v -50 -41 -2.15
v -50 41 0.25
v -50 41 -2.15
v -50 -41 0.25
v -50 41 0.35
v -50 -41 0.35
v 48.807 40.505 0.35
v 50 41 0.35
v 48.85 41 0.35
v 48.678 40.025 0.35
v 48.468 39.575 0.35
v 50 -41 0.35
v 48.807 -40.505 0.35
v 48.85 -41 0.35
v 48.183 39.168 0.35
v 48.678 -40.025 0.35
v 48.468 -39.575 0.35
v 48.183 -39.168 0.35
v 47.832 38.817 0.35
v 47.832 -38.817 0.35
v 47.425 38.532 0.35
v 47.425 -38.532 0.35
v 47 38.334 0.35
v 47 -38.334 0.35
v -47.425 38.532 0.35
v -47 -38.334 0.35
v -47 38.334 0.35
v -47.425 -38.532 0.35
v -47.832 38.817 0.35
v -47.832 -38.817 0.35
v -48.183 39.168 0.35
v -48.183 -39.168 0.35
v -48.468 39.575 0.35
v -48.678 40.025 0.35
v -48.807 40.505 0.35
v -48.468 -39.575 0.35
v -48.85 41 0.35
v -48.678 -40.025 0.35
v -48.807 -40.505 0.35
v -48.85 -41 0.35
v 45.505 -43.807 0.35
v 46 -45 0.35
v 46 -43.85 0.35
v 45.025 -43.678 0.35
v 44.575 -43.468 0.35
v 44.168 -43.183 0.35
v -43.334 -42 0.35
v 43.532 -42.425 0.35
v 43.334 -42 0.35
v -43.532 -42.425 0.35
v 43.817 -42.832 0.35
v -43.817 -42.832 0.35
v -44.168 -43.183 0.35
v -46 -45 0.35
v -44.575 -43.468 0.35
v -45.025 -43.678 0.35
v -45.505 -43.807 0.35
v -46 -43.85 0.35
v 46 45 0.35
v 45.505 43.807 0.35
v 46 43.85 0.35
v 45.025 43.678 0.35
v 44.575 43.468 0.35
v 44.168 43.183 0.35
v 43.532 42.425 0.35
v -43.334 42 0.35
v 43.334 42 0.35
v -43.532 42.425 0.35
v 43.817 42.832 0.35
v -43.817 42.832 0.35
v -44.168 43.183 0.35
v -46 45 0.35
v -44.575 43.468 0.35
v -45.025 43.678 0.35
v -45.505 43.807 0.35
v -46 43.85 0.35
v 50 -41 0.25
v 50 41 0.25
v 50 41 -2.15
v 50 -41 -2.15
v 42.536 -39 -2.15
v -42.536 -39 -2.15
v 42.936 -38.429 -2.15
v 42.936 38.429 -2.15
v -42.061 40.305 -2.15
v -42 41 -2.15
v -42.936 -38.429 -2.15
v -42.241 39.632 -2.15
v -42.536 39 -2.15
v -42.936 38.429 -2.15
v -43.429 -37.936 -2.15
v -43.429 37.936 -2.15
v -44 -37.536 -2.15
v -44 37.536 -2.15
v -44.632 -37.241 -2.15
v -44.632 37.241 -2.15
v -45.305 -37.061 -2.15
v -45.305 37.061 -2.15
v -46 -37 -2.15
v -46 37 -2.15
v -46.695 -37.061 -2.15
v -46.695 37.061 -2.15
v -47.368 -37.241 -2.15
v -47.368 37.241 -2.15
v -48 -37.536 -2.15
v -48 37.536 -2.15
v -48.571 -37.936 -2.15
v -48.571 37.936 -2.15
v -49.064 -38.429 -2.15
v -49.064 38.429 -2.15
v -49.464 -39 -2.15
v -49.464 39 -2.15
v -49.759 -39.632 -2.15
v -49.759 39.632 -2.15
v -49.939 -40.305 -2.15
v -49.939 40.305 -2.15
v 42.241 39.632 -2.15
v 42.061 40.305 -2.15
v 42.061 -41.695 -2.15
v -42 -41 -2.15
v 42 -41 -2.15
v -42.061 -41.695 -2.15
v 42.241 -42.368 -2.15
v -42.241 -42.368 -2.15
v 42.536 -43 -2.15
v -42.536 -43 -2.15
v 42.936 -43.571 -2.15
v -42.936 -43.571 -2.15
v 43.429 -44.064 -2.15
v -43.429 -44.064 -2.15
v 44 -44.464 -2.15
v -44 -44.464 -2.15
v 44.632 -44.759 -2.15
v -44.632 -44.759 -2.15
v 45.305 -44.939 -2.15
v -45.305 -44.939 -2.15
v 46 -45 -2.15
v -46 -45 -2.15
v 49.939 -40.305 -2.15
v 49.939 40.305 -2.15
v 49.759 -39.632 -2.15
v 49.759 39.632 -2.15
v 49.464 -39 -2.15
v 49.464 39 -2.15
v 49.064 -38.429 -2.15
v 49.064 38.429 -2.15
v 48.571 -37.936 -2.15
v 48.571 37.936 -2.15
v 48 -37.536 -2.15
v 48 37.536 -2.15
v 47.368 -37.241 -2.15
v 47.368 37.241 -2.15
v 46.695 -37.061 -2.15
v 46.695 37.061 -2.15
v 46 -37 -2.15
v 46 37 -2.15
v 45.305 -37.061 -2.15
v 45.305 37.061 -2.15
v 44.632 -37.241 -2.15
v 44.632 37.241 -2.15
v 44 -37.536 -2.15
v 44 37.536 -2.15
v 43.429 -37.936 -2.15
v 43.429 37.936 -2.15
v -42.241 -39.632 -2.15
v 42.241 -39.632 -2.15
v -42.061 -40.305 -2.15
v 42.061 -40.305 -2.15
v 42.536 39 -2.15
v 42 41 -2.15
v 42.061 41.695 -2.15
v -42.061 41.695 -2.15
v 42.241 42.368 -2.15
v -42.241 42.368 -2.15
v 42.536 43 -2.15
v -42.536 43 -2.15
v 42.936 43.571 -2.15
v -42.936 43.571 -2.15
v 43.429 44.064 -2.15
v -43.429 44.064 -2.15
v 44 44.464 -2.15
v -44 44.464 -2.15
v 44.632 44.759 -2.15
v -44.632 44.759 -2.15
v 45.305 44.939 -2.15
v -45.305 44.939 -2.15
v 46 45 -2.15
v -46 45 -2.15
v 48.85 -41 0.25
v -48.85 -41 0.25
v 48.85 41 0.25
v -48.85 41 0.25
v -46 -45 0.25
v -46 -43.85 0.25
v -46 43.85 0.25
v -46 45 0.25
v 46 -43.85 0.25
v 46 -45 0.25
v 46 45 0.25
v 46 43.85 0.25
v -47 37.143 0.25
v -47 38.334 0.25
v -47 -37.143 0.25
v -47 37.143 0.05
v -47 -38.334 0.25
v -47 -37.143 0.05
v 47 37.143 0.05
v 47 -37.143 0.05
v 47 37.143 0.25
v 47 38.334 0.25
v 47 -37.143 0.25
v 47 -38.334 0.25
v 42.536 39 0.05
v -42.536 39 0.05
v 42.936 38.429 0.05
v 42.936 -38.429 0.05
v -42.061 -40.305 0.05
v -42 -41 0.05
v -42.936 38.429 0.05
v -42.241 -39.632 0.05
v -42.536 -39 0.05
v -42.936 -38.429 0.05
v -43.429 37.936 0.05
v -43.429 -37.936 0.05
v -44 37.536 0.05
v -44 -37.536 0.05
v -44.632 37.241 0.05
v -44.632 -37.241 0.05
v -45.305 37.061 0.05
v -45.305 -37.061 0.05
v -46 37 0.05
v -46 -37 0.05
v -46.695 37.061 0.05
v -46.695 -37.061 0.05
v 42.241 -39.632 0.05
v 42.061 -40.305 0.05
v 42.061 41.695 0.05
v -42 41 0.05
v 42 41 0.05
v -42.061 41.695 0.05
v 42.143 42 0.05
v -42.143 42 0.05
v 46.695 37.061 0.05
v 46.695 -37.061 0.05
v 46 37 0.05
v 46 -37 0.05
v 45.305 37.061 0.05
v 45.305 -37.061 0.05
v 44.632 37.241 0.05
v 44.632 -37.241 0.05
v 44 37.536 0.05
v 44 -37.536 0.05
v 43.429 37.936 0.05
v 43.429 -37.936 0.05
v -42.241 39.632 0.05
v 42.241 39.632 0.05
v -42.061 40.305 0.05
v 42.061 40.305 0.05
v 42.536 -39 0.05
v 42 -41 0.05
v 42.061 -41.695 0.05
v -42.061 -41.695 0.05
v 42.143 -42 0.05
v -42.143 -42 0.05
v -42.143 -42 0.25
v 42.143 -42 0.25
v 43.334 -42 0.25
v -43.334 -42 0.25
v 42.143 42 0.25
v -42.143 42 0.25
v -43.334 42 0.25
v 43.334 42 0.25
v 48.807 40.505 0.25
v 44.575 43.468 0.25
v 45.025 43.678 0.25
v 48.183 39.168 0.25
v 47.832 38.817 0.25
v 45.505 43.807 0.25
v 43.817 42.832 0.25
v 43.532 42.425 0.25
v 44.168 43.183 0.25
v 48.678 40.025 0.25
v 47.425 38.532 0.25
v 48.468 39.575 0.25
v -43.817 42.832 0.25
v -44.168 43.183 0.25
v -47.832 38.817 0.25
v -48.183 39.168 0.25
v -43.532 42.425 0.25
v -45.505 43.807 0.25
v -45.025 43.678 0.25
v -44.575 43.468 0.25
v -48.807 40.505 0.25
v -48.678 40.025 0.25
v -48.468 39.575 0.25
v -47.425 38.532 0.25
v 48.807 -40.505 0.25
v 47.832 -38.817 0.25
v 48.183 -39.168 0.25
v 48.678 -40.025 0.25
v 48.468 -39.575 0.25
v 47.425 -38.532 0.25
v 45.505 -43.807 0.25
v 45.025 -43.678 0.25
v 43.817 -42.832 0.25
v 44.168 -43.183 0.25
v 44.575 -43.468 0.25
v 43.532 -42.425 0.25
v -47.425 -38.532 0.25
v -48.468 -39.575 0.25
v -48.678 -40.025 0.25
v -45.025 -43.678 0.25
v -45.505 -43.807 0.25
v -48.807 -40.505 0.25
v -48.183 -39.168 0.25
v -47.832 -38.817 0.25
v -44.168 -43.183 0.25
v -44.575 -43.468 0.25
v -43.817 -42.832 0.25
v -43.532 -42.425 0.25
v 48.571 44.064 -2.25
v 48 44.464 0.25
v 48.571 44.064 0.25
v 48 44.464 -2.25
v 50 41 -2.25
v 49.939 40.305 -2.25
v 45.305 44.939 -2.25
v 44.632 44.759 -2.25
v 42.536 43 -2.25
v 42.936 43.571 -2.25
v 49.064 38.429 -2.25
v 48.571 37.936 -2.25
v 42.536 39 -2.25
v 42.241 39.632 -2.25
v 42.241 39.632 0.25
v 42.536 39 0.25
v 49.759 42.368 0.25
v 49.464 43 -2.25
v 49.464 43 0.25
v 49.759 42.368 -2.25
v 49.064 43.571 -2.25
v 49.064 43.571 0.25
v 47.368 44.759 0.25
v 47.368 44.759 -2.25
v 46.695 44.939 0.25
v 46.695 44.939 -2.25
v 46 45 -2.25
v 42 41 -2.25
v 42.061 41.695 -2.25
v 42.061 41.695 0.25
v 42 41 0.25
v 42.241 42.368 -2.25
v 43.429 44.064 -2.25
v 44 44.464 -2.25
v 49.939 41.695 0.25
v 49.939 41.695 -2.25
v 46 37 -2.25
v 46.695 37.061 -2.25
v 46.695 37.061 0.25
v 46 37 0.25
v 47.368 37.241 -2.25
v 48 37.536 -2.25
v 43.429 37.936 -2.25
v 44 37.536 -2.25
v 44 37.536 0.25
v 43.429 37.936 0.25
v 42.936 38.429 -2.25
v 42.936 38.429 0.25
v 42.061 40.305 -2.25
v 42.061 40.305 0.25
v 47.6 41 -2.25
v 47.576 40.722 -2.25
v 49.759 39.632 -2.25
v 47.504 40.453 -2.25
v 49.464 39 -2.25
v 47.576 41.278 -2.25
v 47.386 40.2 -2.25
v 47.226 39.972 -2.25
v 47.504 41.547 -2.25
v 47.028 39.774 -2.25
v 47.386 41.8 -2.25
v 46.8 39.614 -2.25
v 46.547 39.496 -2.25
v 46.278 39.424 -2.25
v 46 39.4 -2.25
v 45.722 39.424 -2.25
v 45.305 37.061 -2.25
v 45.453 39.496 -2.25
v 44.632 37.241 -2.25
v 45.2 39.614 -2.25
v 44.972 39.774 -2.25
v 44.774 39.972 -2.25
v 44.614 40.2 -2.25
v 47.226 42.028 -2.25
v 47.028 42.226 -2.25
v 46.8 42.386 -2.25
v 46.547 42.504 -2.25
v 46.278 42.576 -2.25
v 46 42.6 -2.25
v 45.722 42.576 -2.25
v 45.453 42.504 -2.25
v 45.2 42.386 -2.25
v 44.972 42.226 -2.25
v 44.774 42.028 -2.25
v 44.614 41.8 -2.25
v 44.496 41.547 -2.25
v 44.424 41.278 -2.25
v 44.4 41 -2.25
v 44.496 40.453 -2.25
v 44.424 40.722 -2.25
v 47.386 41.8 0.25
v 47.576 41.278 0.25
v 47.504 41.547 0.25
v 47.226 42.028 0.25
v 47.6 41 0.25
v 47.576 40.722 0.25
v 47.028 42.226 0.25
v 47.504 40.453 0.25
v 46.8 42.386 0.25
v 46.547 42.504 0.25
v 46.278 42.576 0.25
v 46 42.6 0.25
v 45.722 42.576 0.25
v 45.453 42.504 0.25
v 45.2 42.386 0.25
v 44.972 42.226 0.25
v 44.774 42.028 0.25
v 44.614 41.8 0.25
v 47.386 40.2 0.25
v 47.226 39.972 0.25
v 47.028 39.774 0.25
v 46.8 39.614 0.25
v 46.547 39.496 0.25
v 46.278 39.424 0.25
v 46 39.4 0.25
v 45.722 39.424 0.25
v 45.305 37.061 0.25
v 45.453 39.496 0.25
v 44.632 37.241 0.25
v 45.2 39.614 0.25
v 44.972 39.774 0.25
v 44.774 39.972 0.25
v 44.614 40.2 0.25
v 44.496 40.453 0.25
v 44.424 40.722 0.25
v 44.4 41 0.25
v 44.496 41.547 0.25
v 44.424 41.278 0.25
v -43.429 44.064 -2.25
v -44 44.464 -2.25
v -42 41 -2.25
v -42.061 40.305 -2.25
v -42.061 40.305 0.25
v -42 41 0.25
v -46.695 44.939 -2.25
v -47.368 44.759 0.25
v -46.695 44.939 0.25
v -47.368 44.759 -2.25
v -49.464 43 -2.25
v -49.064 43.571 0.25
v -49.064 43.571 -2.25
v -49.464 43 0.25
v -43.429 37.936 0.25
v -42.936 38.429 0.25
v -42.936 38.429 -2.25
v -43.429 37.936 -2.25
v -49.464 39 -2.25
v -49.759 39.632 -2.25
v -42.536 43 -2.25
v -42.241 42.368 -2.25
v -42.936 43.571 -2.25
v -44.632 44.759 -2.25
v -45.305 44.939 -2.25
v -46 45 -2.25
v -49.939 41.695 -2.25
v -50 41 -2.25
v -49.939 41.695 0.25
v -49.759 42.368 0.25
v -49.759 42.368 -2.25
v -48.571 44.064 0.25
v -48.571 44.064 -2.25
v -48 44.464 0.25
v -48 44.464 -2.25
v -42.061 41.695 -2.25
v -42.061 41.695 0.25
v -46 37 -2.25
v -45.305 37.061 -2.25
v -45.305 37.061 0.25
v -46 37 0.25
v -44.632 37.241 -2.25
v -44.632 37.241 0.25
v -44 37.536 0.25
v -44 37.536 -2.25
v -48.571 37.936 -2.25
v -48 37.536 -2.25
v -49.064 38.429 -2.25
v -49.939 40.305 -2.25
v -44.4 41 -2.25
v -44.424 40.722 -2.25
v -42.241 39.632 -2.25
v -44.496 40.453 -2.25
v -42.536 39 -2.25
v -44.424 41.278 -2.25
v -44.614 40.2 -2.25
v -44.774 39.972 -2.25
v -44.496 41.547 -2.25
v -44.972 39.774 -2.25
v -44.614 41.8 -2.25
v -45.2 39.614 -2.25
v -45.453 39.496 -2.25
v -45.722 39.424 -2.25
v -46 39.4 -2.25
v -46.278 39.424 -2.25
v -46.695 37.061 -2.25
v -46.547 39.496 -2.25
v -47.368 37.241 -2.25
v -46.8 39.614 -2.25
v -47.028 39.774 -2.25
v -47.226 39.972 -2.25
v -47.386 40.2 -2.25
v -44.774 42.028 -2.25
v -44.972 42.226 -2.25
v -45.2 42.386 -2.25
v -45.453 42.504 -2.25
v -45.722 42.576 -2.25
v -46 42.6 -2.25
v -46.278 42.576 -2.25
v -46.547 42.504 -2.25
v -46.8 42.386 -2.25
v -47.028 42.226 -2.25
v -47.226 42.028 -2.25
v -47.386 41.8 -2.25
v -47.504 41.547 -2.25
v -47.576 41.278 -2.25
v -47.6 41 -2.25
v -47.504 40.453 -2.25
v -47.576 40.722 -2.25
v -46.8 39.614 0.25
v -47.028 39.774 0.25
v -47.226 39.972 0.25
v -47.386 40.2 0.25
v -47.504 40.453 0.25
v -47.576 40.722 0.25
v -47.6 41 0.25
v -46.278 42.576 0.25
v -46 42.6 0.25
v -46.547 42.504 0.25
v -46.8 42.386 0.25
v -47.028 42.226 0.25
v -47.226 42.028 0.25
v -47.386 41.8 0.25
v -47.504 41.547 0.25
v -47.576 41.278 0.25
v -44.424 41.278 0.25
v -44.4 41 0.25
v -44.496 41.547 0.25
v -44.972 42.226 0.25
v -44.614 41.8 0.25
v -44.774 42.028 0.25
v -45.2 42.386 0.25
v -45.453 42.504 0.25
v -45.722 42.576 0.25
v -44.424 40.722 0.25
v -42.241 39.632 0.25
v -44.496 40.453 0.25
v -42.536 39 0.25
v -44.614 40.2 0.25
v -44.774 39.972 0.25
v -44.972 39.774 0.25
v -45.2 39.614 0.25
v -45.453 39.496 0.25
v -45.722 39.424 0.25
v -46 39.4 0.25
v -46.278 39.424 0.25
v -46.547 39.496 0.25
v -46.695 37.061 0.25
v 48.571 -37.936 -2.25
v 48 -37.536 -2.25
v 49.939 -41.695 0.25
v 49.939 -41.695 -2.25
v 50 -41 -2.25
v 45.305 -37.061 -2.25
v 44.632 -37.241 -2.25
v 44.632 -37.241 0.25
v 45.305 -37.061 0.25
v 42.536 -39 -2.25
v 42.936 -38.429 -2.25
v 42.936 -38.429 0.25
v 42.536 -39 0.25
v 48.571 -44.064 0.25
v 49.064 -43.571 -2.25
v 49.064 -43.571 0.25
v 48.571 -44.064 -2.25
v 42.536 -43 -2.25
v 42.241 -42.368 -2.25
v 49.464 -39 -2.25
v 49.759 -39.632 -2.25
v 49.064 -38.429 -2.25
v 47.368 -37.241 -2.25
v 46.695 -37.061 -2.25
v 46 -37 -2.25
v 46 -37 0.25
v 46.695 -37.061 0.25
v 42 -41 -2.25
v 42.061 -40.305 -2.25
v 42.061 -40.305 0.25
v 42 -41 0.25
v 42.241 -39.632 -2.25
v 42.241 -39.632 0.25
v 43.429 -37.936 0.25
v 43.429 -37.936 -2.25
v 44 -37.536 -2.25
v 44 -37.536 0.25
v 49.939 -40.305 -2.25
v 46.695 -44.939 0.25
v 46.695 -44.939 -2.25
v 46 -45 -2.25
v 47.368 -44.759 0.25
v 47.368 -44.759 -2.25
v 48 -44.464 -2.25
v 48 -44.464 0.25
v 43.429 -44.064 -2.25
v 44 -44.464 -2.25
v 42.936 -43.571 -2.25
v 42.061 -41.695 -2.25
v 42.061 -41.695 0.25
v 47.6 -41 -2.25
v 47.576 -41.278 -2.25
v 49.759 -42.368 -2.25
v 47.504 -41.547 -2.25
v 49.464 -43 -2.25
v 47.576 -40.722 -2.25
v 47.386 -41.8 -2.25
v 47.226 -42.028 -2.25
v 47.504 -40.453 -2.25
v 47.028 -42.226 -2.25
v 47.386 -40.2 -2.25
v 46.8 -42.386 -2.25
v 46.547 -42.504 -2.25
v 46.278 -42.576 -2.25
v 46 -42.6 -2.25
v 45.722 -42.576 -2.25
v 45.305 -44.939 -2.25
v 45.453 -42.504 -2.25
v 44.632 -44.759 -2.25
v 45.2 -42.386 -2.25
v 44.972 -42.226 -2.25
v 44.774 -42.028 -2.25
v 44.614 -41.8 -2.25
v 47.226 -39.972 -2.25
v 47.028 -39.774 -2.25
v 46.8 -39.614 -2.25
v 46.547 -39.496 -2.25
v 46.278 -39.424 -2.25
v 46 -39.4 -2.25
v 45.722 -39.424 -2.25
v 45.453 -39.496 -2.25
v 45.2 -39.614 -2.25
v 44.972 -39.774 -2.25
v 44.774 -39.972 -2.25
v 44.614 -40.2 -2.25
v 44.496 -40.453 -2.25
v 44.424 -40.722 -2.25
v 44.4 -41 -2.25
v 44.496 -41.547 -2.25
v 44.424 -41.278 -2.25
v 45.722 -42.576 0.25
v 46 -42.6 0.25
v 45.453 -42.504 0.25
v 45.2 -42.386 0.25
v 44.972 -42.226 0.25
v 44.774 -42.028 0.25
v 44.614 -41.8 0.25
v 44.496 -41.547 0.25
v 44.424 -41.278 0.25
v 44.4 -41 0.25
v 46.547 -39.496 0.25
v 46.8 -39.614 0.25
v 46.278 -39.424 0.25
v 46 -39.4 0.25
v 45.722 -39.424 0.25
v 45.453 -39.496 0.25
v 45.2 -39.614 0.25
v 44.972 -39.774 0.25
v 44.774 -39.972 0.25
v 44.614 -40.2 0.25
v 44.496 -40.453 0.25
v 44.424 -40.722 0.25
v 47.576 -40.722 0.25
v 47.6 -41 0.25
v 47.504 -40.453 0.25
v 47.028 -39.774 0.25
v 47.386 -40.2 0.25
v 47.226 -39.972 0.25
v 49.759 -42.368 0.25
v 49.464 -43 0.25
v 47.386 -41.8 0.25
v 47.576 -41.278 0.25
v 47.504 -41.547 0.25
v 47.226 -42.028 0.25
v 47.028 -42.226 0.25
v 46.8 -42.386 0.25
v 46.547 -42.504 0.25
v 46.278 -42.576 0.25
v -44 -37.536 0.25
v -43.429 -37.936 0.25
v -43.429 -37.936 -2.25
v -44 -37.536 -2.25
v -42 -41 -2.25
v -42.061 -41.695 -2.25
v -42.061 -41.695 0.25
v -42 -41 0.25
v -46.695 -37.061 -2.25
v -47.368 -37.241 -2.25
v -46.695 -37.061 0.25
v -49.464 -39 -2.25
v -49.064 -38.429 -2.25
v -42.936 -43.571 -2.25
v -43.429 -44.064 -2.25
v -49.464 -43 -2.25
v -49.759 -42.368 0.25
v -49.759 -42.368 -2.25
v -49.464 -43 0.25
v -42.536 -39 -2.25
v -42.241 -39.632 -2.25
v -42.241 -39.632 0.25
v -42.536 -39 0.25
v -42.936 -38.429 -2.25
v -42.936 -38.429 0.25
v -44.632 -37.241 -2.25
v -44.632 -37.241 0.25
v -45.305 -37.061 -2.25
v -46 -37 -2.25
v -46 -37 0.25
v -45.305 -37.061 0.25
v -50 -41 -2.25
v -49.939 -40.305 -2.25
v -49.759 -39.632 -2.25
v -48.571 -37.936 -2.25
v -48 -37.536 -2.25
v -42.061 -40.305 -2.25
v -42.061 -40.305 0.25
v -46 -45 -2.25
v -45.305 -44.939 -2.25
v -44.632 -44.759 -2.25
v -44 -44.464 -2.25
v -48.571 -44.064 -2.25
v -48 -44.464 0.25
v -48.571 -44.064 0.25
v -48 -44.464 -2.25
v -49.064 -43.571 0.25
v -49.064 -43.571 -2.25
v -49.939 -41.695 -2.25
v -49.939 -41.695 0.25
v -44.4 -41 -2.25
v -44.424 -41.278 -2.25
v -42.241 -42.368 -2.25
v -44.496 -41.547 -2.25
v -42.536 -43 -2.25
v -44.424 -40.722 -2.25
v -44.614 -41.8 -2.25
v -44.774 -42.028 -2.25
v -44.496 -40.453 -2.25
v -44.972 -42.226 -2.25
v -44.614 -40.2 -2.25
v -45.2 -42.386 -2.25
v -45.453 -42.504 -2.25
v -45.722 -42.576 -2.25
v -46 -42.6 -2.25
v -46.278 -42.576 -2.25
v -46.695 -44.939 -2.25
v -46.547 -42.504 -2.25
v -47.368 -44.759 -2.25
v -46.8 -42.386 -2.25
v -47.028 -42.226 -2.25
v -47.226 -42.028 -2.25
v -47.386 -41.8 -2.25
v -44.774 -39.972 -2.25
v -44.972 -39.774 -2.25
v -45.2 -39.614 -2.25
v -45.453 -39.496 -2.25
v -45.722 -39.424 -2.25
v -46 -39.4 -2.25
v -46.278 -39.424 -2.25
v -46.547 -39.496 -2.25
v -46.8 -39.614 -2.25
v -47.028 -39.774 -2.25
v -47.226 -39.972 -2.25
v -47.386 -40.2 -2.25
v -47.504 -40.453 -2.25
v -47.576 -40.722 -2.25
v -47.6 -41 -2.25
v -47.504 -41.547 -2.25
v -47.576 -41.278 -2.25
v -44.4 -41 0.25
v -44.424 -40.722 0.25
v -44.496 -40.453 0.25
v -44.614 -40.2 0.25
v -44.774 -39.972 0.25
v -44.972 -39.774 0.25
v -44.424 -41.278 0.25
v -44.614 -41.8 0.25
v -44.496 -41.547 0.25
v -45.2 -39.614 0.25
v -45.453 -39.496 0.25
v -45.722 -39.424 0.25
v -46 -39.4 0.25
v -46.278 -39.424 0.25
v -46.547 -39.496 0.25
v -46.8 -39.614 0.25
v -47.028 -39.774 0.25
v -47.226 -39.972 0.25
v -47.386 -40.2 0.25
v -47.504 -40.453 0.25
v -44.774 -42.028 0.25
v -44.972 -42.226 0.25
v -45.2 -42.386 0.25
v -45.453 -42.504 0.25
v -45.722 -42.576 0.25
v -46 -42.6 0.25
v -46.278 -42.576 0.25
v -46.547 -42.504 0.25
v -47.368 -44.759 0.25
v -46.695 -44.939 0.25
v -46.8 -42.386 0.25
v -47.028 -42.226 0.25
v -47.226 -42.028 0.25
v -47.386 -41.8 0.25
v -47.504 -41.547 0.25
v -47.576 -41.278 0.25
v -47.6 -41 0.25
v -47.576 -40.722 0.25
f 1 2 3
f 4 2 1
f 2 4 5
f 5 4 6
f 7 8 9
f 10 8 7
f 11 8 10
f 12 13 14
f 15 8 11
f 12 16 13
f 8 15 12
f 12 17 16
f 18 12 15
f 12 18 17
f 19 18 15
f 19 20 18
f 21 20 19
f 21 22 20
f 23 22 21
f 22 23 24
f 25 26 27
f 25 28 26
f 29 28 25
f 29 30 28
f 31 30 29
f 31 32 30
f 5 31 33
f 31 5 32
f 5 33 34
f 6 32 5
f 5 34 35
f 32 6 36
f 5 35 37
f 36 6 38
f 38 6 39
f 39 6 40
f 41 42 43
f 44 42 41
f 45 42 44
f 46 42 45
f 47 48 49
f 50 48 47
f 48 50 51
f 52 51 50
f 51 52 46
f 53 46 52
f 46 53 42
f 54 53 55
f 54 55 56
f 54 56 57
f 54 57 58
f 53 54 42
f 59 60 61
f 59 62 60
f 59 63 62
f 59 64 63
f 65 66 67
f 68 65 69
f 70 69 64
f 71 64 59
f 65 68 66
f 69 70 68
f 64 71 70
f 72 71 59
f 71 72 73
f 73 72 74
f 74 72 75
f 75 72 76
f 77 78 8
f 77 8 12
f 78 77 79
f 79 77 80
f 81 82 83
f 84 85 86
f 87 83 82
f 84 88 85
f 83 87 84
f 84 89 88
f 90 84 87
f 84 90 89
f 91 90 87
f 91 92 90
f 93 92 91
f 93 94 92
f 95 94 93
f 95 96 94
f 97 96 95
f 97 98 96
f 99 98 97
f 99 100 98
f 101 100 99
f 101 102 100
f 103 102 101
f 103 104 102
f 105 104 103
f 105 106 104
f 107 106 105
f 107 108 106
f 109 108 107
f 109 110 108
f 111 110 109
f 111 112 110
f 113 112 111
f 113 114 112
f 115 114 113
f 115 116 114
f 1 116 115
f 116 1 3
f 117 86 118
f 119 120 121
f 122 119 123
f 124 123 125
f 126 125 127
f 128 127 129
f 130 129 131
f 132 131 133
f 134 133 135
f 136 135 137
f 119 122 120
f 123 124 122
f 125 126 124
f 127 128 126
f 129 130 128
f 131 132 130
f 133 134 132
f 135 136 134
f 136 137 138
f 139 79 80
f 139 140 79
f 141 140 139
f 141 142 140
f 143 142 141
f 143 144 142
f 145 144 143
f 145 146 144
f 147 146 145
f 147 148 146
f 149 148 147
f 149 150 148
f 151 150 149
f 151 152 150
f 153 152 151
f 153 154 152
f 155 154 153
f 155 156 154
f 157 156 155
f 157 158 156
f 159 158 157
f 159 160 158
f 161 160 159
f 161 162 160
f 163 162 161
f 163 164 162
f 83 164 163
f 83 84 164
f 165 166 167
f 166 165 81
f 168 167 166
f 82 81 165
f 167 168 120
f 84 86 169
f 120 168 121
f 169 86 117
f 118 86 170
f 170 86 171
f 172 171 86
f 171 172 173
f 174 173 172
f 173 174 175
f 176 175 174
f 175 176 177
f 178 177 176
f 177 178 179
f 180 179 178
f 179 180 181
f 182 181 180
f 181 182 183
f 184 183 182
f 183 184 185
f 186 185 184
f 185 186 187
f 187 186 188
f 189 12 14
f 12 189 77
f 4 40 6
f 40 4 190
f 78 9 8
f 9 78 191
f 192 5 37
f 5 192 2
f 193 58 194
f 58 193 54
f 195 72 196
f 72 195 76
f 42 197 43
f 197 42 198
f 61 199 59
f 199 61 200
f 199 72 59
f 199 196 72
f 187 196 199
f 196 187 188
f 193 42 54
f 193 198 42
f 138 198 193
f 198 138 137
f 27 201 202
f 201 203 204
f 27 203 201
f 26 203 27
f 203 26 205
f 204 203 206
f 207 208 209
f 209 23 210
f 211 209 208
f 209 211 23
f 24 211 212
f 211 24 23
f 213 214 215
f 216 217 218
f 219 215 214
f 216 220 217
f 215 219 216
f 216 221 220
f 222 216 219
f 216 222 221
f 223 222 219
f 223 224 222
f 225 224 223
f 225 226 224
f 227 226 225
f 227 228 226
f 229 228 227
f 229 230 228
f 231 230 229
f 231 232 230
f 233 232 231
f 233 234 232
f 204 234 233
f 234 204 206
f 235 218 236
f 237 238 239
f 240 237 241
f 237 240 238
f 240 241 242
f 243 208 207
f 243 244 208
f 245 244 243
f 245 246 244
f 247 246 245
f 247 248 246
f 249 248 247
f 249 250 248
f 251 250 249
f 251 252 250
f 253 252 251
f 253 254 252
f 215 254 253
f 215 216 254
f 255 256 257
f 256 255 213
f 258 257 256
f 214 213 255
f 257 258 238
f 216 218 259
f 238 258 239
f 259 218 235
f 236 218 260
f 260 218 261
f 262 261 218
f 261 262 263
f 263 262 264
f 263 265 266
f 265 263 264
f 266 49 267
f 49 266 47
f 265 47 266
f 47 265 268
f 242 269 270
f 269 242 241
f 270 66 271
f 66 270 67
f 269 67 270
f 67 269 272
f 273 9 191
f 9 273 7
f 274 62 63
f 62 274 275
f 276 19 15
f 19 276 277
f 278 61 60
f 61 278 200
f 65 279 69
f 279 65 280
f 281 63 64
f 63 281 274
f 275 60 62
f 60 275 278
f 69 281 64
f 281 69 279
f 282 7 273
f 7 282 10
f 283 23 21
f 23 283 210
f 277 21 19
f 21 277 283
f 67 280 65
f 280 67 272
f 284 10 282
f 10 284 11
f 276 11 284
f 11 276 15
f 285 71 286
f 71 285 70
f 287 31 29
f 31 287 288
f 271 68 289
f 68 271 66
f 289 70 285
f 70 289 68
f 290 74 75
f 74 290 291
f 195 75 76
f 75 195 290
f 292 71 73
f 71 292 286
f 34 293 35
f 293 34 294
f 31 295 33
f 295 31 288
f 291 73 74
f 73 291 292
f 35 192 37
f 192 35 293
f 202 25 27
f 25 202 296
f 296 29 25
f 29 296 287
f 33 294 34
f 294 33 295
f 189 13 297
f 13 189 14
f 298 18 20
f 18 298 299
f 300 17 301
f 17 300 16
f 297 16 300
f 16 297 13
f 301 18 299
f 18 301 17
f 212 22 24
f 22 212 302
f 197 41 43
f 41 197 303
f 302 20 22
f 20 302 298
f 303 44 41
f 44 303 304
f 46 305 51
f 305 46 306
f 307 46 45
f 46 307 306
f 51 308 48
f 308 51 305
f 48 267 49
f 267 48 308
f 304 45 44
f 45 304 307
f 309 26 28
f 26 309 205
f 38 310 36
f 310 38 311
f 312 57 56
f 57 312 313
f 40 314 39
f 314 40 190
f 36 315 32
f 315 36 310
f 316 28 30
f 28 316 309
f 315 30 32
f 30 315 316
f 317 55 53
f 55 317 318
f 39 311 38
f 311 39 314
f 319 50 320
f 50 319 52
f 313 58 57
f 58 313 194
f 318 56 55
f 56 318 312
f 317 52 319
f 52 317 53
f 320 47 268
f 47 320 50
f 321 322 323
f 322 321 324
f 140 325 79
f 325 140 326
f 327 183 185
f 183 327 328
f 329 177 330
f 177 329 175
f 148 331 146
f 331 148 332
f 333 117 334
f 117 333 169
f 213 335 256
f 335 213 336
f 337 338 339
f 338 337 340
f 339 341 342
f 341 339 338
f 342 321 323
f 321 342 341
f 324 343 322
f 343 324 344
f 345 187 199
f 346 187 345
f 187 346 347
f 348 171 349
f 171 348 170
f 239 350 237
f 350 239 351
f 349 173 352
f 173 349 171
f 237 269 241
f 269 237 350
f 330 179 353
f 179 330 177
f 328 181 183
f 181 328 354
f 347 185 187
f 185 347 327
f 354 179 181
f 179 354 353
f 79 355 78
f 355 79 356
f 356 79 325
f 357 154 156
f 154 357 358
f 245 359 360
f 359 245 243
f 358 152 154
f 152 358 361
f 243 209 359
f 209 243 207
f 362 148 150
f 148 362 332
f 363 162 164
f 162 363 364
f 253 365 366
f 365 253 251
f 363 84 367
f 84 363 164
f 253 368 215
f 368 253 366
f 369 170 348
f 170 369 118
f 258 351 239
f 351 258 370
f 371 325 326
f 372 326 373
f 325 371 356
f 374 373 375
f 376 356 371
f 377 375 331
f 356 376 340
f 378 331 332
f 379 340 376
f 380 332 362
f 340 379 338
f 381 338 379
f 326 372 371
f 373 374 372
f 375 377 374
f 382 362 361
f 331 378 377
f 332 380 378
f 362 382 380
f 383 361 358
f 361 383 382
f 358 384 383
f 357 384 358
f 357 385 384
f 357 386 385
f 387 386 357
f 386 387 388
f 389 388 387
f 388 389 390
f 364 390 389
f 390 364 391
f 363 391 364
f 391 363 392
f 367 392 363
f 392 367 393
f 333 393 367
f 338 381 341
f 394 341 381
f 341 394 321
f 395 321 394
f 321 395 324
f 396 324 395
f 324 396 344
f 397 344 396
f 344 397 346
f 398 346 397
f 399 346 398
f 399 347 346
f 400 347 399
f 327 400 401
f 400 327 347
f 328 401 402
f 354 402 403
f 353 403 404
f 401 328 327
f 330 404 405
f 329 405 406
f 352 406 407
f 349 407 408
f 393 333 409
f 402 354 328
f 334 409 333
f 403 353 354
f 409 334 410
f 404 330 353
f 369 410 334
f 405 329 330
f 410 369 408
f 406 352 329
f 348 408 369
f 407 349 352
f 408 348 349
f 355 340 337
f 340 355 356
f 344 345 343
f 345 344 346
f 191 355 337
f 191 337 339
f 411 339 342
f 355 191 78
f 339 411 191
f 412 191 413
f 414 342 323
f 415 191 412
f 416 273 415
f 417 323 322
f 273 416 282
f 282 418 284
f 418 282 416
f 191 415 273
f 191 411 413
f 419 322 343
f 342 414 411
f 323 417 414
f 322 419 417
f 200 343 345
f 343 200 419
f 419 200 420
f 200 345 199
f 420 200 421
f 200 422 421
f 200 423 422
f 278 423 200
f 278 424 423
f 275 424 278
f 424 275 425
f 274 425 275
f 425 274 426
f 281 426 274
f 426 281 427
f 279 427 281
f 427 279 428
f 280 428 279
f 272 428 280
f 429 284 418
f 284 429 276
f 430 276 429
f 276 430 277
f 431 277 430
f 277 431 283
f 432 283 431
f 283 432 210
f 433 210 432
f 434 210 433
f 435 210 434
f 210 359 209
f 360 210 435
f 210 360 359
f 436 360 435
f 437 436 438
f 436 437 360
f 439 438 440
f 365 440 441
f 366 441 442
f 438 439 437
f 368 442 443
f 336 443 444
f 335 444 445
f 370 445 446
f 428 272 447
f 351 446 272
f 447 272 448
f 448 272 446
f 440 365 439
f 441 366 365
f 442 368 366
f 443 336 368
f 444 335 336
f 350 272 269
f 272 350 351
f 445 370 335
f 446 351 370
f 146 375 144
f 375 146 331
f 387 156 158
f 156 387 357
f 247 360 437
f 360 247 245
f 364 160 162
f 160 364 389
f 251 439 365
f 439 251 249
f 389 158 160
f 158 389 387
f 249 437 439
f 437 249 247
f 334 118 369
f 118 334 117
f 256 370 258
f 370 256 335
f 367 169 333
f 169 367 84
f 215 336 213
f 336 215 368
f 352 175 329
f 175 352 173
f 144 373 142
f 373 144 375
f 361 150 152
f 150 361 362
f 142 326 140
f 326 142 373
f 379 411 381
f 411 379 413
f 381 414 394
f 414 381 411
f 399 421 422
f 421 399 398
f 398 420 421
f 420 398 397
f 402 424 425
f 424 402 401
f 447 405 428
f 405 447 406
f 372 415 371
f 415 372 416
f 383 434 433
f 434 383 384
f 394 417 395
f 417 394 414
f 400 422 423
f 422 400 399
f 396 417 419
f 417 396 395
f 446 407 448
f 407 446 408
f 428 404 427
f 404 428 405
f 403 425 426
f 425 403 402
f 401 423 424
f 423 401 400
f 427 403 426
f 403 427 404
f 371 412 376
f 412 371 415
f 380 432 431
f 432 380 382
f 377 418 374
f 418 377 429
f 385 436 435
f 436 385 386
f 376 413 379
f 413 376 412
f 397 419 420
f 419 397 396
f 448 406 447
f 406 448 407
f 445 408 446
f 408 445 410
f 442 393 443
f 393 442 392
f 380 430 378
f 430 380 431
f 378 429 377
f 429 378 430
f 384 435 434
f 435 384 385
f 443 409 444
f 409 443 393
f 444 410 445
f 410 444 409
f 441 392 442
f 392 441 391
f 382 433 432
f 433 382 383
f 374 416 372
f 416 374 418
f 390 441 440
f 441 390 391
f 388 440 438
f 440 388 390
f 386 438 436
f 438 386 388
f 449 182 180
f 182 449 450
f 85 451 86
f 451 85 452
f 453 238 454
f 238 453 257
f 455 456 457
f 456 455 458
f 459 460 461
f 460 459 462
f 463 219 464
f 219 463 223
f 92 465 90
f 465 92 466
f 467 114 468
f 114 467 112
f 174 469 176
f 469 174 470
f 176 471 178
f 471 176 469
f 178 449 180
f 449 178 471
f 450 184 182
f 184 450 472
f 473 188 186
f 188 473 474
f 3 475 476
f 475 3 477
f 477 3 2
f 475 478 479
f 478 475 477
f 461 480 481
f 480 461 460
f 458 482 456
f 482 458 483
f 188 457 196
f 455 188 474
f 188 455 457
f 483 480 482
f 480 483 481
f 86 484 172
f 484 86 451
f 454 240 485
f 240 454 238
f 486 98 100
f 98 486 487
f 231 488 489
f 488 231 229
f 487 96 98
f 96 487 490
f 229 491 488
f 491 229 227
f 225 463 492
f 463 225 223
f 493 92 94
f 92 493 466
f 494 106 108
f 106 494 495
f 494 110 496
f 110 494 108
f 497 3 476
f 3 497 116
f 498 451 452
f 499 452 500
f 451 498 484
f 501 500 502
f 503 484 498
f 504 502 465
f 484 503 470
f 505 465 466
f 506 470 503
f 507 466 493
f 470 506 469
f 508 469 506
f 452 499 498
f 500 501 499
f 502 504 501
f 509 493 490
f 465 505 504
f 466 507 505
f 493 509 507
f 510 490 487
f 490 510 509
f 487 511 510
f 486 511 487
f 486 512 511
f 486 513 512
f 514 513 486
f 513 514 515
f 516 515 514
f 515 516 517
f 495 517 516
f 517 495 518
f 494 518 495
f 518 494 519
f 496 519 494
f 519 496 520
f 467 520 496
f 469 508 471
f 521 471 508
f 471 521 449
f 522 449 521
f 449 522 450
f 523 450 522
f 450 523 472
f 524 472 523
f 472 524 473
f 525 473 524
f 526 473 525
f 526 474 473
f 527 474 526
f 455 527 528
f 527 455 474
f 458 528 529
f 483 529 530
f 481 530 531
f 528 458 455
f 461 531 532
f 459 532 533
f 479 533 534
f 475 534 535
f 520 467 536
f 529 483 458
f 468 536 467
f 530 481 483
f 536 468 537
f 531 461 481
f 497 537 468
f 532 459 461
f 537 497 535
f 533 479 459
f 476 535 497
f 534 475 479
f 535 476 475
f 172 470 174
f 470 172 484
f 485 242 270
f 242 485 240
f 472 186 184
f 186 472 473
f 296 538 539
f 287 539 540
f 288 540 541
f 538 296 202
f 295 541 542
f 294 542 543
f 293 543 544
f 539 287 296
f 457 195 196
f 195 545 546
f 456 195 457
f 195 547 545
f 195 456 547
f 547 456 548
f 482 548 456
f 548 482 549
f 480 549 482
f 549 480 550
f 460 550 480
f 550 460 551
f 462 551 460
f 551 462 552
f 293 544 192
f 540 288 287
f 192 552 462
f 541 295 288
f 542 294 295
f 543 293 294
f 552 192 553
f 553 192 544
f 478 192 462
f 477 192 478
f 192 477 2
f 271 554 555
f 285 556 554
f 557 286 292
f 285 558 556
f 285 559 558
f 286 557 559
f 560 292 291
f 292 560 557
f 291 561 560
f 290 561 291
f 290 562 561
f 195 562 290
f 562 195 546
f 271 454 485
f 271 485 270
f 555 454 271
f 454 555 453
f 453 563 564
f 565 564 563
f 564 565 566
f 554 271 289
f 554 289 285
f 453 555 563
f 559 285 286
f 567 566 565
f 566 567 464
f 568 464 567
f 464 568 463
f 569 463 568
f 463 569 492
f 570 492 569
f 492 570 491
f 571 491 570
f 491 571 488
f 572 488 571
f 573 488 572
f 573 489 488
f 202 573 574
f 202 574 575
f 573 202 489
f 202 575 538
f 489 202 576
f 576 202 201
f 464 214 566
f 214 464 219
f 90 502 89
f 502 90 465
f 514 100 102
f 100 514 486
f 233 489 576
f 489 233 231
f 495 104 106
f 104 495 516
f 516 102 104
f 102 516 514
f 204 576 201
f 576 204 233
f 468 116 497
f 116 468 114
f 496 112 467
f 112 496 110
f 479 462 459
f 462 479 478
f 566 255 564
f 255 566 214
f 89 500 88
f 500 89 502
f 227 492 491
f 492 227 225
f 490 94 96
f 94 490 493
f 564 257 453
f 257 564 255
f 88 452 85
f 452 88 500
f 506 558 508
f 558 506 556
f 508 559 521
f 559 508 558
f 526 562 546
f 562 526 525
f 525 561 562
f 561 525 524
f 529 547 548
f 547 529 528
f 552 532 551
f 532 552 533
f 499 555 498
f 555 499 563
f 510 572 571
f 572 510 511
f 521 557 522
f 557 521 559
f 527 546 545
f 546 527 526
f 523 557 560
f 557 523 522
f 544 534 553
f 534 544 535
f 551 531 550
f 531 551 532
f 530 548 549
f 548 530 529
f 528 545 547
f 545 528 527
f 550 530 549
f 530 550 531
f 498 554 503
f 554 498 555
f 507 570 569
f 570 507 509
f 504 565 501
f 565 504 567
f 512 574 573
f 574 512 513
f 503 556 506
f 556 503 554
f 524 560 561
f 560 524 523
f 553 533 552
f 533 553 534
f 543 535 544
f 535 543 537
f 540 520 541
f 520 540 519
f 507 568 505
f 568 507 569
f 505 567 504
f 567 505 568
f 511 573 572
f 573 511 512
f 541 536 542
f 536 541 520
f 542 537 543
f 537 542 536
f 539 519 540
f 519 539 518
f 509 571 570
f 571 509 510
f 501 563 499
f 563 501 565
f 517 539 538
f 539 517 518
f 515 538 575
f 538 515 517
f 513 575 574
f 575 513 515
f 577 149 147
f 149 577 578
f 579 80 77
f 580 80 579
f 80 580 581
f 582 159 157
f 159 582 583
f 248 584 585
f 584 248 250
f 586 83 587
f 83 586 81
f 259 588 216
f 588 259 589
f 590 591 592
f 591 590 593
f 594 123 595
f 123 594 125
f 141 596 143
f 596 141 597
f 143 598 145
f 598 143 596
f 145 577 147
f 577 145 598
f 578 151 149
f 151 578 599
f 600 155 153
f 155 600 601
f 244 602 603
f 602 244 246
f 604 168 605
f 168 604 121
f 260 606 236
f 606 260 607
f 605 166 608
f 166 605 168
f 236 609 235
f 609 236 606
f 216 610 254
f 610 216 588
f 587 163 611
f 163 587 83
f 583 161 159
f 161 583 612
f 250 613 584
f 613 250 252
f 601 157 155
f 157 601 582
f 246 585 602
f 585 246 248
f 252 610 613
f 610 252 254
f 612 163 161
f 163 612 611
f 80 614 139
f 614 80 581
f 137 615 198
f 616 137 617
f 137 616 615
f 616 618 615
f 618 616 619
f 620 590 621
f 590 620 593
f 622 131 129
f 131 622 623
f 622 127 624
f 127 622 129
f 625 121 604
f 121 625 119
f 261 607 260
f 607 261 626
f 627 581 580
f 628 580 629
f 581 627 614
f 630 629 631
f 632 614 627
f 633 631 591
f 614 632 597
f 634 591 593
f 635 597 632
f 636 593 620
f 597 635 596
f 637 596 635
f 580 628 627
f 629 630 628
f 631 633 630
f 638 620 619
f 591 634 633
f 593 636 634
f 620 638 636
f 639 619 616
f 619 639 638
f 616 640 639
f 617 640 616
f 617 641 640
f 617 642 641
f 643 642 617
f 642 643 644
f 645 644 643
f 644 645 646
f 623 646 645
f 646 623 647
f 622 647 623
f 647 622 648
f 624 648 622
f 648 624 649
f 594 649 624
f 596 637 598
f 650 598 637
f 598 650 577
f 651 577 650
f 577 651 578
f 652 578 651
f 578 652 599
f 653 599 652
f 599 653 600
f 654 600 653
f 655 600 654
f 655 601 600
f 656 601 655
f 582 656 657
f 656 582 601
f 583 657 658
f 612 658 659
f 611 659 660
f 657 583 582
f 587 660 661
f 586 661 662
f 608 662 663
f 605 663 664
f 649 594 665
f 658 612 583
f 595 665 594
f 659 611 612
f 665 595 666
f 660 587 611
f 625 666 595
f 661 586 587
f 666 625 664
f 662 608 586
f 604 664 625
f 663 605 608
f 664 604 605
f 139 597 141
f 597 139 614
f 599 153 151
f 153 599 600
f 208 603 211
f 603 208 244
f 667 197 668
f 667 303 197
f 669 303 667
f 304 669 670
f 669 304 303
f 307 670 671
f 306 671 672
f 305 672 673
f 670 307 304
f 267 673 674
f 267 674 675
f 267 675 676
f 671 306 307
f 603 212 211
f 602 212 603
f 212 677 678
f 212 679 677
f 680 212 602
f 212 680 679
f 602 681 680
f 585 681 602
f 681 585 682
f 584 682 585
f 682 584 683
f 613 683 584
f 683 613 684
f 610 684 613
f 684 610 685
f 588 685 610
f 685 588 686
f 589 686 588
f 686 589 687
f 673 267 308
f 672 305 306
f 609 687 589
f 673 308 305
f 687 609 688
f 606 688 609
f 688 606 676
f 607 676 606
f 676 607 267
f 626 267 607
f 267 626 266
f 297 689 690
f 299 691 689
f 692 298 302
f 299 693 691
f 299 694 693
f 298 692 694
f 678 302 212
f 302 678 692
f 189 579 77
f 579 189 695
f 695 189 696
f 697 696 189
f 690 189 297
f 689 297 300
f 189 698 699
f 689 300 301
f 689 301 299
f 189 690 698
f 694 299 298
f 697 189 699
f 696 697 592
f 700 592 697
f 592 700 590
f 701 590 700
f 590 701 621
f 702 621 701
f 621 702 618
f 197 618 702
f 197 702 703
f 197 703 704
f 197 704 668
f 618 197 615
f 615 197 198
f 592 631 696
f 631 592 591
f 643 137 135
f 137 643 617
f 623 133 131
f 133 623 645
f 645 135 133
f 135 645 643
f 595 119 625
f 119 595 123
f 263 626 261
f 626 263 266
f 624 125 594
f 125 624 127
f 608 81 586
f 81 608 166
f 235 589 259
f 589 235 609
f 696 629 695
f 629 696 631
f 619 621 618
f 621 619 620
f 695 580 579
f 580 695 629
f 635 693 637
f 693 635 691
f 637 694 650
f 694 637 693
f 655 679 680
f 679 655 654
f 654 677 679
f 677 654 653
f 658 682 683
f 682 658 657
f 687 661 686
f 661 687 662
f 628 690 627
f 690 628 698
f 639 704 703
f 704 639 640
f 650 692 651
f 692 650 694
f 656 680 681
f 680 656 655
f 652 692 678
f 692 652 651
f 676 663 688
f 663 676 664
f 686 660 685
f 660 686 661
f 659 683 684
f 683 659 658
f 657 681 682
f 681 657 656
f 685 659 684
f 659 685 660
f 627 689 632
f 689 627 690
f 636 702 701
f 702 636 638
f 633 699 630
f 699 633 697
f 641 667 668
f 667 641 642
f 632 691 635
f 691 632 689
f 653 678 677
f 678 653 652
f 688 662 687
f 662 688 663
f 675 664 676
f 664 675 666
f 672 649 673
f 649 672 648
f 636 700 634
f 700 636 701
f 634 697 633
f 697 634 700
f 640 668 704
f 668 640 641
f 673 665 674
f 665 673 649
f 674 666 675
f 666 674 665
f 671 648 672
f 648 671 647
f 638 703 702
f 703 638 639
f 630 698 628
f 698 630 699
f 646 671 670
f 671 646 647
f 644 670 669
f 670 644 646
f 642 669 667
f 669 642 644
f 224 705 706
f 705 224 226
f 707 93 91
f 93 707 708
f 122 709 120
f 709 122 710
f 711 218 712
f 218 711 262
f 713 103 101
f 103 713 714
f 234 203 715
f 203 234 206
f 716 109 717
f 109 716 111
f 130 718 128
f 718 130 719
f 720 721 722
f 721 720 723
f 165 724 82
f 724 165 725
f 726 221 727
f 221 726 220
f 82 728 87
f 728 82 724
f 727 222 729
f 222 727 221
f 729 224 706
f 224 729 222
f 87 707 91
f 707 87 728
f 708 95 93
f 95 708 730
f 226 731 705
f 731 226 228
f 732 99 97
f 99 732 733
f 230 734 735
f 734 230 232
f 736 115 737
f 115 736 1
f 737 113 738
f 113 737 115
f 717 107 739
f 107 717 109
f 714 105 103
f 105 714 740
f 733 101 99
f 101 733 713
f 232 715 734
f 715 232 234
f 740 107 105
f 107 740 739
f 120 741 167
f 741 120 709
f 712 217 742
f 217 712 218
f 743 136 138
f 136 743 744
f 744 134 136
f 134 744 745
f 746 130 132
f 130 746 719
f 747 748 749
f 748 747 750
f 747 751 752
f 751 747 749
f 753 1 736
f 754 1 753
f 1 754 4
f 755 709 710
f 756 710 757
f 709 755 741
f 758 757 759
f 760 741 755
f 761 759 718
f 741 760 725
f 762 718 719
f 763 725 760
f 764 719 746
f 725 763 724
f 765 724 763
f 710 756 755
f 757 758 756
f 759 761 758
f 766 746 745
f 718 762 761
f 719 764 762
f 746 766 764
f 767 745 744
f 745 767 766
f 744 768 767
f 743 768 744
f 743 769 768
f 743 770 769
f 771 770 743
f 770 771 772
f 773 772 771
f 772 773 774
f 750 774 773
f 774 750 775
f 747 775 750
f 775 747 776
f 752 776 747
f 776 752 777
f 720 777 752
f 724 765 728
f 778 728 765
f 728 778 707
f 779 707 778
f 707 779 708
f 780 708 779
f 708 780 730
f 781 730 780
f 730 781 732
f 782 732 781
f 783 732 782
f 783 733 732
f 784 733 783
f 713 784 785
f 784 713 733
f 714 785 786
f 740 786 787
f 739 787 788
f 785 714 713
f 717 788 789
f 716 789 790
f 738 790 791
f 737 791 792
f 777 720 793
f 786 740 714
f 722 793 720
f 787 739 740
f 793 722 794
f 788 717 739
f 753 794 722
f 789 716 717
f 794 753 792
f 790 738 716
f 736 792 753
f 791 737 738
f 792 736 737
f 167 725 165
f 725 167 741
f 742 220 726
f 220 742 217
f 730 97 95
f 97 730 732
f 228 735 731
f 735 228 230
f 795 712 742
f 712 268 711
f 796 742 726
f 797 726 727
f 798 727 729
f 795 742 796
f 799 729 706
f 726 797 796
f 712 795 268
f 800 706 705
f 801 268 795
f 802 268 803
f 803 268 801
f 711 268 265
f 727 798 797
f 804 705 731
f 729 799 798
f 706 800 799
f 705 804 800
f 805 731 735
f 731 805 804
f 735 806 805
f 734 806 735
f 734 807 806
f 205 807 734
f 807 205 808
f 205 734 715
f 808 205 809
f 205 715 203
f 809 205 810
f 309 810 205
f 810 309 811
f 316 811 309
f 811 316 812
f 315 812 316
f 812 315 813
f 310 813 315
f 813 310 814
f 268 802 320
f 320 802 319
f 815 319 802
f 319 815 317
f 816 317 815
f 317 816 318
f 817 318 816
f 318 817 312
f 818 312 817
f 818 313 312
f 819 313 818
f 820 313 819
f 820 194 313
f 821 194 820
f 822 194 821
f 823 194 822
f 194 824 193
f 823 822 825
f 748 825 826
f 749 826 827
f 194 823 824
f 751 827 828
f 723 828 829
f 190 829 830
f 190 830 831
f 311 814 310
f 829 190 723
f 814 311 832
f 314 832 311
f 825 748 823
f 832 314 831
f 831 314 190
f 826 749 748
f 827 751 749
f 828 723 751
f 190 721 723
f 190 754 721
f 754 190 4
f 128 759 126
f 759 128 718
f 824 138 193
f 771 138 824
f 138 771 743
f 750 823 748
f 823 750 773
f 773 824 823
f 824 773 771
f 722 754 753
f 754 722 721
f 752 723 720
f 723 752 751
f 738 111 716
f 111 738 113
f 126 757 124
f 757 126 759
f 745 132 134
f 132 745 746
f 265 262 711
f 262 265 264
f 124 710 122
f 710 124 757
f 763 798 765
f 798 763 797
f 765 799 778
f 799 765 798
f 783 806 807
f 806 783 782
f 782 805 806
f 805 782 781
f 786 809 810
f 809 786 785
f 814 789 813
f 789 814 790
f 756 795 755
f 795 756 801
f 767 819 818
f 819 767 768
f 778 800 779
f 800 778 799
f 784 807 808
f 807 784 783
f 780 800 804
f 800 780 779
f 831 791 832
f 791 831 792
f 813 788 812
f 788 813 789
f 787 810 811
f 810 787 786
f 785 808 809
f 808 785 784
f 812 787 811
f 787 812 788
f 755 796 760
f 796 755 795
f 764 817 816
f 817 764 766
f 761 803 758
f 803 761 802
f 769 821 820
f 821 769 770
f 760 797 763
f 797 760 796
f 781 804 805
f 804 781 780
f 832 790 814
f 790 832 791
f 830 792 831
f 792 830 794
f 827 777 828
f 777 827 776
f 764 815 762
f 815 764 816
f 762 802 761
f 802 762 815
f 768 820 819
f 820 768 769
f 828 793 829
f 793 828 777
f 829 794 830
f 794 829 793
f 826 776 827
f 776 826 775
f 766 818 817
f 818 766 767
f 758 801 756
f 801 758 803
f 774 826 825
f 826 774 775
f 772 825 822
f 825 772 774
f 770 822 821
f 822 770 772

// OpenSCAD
// Definition size of housing
// **************************

       // Those settings have to be identical to the box !!!
width_x      = 100;          // Width of the cover (outer dimension) 
debth_y      = 90;           // Debth of the cover (outer dimension)
wall         = 1.8;          // Side wall thickness of the cover
flange       = 1.2;            // fitting flange
flangeheight = 2;            // fitting flange
cornerradius = 4.0;          // Radius of the corners
                             //   This value also defines the posts for stability and
                             //   for the screw holes!

       // Those settings are more or less independent from the cover
height_z     = 4.5;          // Heigth of the cover. Total height is this value plus
                             //   the height of the box
plate        = 1.8;          // Thickness of top plate. Consider this value for the
                             //   elements which need to be mounted as well as for 
                             //   mechanical stability

       //Definition size of screws (Example value for M3 inner hex screw)
screwholediameter  = 3.2;    // Size of screw hole
screwheaddiameter  = 5.7;    // Size for screw head (diameter)
screwheadheigth    = 0;    // Heigth of the screw head
                             //   Screw head sits on top of cover if this value is set to zero
                             //   Consider material under screw head for mechanical strength 
                             //   when plunging screw 

//Definition of circle angular resolution
resol        = 36;           // Identical to housing !!!

pillarheight=6.5;
pillardia=5;
holedia=2.5;

difference () {

   // Construction Main Cover
   union () {
      difference () {
         // Construction of cover plate
         union () {
         translate ( [0,0, -plate / 2] ){ 
            cube ( [width_x, debth_y - (2* cornerradius), height_z-flangeheight], center = true );
            cube ( [width_x - (2* cornerradius), debth_y, height_z-flangeheight], center = true );
         };
         //flanges
         /*
            cube ( [width_x - wall*2, debth_y - (2* cornerradius), height_z], center = true );
            cube ( [width_x - (2* cornerradius) , debth_y - wall*2, height_z], center = true );*/
         };

         // Remove inner material
         translate ( [0,0, plate / 2+1] ){
            cube ( [width_x - (2* wall) - (2* flange), debth_y- (2* wall)- (2* flange), height_z - plate+1], center = true );
         };
         // Remove Screw hole in the 1st quadrant (required if screw head is thinner than plate!)
         translate ( [(width_x / 2) - cornerradius, (debth_y / 2) - cornerradius, 0 ] ) {
            cylinder ( h = height_z, r = screwheaddiameter / 2, center = true, $fn = resol );
         };
         // Remove Screw hole in the 2nd quadrant (required if screw head is thinner than plate!)
         translate ( [-(width_x / 2) + cornerradius, (debth_y / 2) - cornerradius, 0 ] ) {
            cylinder ( h = height_z, r = screwheaddiameter / 2, center = true, $fn = resol );
         };
         // Remove Screw hole in the 4th quadrant (required if screw head is thinner than plate!)
         translate ( [(width_x / 2) - cornerradius, -(debth_y / 2) + cornerradius, 0 ] ) {
            cylinder ( h = height_z, r = screwheaddiameter / 2, center = true, $fn = resol );
         };
         // Remove Screw hole in the 3rd quadrant (required if screw head is thinner than plate!)
         translate ( [-(width_x / 2) + cornerradius, -(debth_y / 2) + cornerradius, 0 ] ) {
            cylinder ( h = height_z, r = screwheaddiameter / 2, center = true, $fn = resol );
         };
      };

      // Construction of corner posts, screw holes and screw head holes
      //   in 1st quadrant
      translate ( [(width_x / 2) - cornerradius, (debth_y / 2) - cornerradius, -flangeheight/2 ] ) {
         difference () {
            cylinder (h=height_z-flangeheight, r=cornerradius, center = true, $fn = resol);
            cylinder (h = height_z, r = screwholediameter / 2, center = true, $fn = resol);
            translate ( [ 0, 0, - ( height_z / 2 ) + ( screwheadheigth / 2 ) ] ) {
               cylinder ( h = screwheadheigth, r = screwheaddiameter / 2, center = true, $fn = resol );
            };
            translate ( [ 0, 0, flangeheight*3 - plate*2 ] ) {
               cylinder ( h = flangeheight, r = cornerradius+1, center = true, $fn = resol );
            };
         };
      };
      //   in 2nd quadrant
      translate ( [-(width_x / 2) + cornerradius, (debth_y / 2) - cornerradius, -flangeheight/2] ) {
         difference () {
            cylinder (h=height_z-flangeheight, r=cornerradius, center = true, $fn = resol);
            cylinder (h = height_z, r = screwholediameter / 2, center = true, $fn = resol);
            translate ( [ 0, 0, - ( height_z / 2 ) + ( screwheadheigth / 2 ) ] ) {
               cylinder ( h = screwheadheigth, r = screwheaddiameter / 2, center = true, $fn = resol );
            };
            translate ( [ 0, 0, flangeheight*3 - plate*2 ] ) {
               cylinder ( h = flangeheight, r = cornerradius+1, center = true, $fn = resol );
            };
            
         };
      };
      //   in 4th quadrant
      translate ( [(width_x / 2) - cornerradius, -(debth_y / 2) + cornerradius, -flangeheight/2] ) {
         difference () {
            cylinder (h=height_z-flangeheight, r=cornerradius, center = true, $fn = resol);
            cylinder (h = height_z, r = screwholediameter / 2, center = true, $fn = resol);
            translate ( [ 0, 0, - ( height_z / 2 ) + ( screwheadheigth / 2 ) ] ) {
               cylinder ( h = screwheadheigth, r = screwheaddiameter / 2, center = true, $fn = resol );
            };
            translate ( [ 0, 0, flangeheight*3 - plate*2 ] ) {
               cylinder ( h = flangeheight, r = cornerradius+1, center = true, $fn = resol );
            };

         };
      };
      //   in 3rd quadrant
      translate ( [-(width_x / 2) + cornerradius, -(debth_y / 2) + cornerradius, -flangeheight/2] ) {
         difference () {
            cylinder (h=height_z-flangeheight, r=cornerradius, center = true, $fn = resol);
            cylinder (h = height_z, r = screwholediameter / 2, center = true, $fn = resol);
            translate ( [ 0, 0, - ( height_z / 2 ) + ( screwheadheigth / 2 ) ] ) {
               cylinder ( h = screwheadheigth, r = screwheaddiameter / 2, center = true, $fn = resol );
            };
            translate ( [ 0, 0, flangeheight*3 - plate*2 ] ) {
               cylinder ( h = flangeheight, r = cornerradius+1, center = true, $fn = resol );
            };

         };
      };
      
  };
         
         


};



module roundedcube(size = [1, 1, 1], center = false, radius = 0.5, apply_to = "all") {
	// If single value, convert to [x, y, z] vector
	size = (size[0] == undef) ? [size, size, size] : size;

	translate_min = radius;
	translate_xmax = size[0] - radius;
	translate_ymax = size[1] - radius;
	translate_zmax = size[2] - radius;

	diameter = radius * 2;

	obj_translate = (center == false) ?
		[0, 0, 0] : [
			-(size[0] / 2),
			-(size[1] / 2),
			-(size[2] / 2)
		];

	translate(v = obj_translate) {
		hull() {
			for (translate_x = [translate_min, translate_xmax]) {
				x_at = (translate_x == translate_min) ? "min" : "max";
				for (translate_y = [translate_min, translate_ymax]) {
					y_at = (translate_y == translate_min) ? "min" : "max";
					for (translate_z = [translate_min, translate_zmax]) {
						z_at = (translate_z == translate_min) ? "min" : "max";

						translate(v = [translate_x, translate_y, translate_z])
						if (
							(apply_to == "all") ||
							(apply_to == "xmin" && x_at == "min") || (apply_to == "xmax" && x_at == "max") ||
							(apply_to == "ymin" && y_at == "min") || (apply_to == "ymax" && y_at == "max") ||
							(apply_to == "zmin" && z_at == "min") || (apply_to == "zmax" && z_at == "max")
						) {
							sphere(r = radius);
						} else {
							rotate = 
								(apply_to == "xmin" || apply_to == "xmax" || apply_to == "x") ? [0, 90, 0] : (
								(apply_to == "ymin" || apply_to == "ymax" || apply_to == "y") ? [90, 90, 0] :
								[0, 0, 0]
							);
							rotate(a = rotate)
							cylinder(h = diameter, r = radius, center = true);
						}
					}
				}
			}
		}
	}
}
